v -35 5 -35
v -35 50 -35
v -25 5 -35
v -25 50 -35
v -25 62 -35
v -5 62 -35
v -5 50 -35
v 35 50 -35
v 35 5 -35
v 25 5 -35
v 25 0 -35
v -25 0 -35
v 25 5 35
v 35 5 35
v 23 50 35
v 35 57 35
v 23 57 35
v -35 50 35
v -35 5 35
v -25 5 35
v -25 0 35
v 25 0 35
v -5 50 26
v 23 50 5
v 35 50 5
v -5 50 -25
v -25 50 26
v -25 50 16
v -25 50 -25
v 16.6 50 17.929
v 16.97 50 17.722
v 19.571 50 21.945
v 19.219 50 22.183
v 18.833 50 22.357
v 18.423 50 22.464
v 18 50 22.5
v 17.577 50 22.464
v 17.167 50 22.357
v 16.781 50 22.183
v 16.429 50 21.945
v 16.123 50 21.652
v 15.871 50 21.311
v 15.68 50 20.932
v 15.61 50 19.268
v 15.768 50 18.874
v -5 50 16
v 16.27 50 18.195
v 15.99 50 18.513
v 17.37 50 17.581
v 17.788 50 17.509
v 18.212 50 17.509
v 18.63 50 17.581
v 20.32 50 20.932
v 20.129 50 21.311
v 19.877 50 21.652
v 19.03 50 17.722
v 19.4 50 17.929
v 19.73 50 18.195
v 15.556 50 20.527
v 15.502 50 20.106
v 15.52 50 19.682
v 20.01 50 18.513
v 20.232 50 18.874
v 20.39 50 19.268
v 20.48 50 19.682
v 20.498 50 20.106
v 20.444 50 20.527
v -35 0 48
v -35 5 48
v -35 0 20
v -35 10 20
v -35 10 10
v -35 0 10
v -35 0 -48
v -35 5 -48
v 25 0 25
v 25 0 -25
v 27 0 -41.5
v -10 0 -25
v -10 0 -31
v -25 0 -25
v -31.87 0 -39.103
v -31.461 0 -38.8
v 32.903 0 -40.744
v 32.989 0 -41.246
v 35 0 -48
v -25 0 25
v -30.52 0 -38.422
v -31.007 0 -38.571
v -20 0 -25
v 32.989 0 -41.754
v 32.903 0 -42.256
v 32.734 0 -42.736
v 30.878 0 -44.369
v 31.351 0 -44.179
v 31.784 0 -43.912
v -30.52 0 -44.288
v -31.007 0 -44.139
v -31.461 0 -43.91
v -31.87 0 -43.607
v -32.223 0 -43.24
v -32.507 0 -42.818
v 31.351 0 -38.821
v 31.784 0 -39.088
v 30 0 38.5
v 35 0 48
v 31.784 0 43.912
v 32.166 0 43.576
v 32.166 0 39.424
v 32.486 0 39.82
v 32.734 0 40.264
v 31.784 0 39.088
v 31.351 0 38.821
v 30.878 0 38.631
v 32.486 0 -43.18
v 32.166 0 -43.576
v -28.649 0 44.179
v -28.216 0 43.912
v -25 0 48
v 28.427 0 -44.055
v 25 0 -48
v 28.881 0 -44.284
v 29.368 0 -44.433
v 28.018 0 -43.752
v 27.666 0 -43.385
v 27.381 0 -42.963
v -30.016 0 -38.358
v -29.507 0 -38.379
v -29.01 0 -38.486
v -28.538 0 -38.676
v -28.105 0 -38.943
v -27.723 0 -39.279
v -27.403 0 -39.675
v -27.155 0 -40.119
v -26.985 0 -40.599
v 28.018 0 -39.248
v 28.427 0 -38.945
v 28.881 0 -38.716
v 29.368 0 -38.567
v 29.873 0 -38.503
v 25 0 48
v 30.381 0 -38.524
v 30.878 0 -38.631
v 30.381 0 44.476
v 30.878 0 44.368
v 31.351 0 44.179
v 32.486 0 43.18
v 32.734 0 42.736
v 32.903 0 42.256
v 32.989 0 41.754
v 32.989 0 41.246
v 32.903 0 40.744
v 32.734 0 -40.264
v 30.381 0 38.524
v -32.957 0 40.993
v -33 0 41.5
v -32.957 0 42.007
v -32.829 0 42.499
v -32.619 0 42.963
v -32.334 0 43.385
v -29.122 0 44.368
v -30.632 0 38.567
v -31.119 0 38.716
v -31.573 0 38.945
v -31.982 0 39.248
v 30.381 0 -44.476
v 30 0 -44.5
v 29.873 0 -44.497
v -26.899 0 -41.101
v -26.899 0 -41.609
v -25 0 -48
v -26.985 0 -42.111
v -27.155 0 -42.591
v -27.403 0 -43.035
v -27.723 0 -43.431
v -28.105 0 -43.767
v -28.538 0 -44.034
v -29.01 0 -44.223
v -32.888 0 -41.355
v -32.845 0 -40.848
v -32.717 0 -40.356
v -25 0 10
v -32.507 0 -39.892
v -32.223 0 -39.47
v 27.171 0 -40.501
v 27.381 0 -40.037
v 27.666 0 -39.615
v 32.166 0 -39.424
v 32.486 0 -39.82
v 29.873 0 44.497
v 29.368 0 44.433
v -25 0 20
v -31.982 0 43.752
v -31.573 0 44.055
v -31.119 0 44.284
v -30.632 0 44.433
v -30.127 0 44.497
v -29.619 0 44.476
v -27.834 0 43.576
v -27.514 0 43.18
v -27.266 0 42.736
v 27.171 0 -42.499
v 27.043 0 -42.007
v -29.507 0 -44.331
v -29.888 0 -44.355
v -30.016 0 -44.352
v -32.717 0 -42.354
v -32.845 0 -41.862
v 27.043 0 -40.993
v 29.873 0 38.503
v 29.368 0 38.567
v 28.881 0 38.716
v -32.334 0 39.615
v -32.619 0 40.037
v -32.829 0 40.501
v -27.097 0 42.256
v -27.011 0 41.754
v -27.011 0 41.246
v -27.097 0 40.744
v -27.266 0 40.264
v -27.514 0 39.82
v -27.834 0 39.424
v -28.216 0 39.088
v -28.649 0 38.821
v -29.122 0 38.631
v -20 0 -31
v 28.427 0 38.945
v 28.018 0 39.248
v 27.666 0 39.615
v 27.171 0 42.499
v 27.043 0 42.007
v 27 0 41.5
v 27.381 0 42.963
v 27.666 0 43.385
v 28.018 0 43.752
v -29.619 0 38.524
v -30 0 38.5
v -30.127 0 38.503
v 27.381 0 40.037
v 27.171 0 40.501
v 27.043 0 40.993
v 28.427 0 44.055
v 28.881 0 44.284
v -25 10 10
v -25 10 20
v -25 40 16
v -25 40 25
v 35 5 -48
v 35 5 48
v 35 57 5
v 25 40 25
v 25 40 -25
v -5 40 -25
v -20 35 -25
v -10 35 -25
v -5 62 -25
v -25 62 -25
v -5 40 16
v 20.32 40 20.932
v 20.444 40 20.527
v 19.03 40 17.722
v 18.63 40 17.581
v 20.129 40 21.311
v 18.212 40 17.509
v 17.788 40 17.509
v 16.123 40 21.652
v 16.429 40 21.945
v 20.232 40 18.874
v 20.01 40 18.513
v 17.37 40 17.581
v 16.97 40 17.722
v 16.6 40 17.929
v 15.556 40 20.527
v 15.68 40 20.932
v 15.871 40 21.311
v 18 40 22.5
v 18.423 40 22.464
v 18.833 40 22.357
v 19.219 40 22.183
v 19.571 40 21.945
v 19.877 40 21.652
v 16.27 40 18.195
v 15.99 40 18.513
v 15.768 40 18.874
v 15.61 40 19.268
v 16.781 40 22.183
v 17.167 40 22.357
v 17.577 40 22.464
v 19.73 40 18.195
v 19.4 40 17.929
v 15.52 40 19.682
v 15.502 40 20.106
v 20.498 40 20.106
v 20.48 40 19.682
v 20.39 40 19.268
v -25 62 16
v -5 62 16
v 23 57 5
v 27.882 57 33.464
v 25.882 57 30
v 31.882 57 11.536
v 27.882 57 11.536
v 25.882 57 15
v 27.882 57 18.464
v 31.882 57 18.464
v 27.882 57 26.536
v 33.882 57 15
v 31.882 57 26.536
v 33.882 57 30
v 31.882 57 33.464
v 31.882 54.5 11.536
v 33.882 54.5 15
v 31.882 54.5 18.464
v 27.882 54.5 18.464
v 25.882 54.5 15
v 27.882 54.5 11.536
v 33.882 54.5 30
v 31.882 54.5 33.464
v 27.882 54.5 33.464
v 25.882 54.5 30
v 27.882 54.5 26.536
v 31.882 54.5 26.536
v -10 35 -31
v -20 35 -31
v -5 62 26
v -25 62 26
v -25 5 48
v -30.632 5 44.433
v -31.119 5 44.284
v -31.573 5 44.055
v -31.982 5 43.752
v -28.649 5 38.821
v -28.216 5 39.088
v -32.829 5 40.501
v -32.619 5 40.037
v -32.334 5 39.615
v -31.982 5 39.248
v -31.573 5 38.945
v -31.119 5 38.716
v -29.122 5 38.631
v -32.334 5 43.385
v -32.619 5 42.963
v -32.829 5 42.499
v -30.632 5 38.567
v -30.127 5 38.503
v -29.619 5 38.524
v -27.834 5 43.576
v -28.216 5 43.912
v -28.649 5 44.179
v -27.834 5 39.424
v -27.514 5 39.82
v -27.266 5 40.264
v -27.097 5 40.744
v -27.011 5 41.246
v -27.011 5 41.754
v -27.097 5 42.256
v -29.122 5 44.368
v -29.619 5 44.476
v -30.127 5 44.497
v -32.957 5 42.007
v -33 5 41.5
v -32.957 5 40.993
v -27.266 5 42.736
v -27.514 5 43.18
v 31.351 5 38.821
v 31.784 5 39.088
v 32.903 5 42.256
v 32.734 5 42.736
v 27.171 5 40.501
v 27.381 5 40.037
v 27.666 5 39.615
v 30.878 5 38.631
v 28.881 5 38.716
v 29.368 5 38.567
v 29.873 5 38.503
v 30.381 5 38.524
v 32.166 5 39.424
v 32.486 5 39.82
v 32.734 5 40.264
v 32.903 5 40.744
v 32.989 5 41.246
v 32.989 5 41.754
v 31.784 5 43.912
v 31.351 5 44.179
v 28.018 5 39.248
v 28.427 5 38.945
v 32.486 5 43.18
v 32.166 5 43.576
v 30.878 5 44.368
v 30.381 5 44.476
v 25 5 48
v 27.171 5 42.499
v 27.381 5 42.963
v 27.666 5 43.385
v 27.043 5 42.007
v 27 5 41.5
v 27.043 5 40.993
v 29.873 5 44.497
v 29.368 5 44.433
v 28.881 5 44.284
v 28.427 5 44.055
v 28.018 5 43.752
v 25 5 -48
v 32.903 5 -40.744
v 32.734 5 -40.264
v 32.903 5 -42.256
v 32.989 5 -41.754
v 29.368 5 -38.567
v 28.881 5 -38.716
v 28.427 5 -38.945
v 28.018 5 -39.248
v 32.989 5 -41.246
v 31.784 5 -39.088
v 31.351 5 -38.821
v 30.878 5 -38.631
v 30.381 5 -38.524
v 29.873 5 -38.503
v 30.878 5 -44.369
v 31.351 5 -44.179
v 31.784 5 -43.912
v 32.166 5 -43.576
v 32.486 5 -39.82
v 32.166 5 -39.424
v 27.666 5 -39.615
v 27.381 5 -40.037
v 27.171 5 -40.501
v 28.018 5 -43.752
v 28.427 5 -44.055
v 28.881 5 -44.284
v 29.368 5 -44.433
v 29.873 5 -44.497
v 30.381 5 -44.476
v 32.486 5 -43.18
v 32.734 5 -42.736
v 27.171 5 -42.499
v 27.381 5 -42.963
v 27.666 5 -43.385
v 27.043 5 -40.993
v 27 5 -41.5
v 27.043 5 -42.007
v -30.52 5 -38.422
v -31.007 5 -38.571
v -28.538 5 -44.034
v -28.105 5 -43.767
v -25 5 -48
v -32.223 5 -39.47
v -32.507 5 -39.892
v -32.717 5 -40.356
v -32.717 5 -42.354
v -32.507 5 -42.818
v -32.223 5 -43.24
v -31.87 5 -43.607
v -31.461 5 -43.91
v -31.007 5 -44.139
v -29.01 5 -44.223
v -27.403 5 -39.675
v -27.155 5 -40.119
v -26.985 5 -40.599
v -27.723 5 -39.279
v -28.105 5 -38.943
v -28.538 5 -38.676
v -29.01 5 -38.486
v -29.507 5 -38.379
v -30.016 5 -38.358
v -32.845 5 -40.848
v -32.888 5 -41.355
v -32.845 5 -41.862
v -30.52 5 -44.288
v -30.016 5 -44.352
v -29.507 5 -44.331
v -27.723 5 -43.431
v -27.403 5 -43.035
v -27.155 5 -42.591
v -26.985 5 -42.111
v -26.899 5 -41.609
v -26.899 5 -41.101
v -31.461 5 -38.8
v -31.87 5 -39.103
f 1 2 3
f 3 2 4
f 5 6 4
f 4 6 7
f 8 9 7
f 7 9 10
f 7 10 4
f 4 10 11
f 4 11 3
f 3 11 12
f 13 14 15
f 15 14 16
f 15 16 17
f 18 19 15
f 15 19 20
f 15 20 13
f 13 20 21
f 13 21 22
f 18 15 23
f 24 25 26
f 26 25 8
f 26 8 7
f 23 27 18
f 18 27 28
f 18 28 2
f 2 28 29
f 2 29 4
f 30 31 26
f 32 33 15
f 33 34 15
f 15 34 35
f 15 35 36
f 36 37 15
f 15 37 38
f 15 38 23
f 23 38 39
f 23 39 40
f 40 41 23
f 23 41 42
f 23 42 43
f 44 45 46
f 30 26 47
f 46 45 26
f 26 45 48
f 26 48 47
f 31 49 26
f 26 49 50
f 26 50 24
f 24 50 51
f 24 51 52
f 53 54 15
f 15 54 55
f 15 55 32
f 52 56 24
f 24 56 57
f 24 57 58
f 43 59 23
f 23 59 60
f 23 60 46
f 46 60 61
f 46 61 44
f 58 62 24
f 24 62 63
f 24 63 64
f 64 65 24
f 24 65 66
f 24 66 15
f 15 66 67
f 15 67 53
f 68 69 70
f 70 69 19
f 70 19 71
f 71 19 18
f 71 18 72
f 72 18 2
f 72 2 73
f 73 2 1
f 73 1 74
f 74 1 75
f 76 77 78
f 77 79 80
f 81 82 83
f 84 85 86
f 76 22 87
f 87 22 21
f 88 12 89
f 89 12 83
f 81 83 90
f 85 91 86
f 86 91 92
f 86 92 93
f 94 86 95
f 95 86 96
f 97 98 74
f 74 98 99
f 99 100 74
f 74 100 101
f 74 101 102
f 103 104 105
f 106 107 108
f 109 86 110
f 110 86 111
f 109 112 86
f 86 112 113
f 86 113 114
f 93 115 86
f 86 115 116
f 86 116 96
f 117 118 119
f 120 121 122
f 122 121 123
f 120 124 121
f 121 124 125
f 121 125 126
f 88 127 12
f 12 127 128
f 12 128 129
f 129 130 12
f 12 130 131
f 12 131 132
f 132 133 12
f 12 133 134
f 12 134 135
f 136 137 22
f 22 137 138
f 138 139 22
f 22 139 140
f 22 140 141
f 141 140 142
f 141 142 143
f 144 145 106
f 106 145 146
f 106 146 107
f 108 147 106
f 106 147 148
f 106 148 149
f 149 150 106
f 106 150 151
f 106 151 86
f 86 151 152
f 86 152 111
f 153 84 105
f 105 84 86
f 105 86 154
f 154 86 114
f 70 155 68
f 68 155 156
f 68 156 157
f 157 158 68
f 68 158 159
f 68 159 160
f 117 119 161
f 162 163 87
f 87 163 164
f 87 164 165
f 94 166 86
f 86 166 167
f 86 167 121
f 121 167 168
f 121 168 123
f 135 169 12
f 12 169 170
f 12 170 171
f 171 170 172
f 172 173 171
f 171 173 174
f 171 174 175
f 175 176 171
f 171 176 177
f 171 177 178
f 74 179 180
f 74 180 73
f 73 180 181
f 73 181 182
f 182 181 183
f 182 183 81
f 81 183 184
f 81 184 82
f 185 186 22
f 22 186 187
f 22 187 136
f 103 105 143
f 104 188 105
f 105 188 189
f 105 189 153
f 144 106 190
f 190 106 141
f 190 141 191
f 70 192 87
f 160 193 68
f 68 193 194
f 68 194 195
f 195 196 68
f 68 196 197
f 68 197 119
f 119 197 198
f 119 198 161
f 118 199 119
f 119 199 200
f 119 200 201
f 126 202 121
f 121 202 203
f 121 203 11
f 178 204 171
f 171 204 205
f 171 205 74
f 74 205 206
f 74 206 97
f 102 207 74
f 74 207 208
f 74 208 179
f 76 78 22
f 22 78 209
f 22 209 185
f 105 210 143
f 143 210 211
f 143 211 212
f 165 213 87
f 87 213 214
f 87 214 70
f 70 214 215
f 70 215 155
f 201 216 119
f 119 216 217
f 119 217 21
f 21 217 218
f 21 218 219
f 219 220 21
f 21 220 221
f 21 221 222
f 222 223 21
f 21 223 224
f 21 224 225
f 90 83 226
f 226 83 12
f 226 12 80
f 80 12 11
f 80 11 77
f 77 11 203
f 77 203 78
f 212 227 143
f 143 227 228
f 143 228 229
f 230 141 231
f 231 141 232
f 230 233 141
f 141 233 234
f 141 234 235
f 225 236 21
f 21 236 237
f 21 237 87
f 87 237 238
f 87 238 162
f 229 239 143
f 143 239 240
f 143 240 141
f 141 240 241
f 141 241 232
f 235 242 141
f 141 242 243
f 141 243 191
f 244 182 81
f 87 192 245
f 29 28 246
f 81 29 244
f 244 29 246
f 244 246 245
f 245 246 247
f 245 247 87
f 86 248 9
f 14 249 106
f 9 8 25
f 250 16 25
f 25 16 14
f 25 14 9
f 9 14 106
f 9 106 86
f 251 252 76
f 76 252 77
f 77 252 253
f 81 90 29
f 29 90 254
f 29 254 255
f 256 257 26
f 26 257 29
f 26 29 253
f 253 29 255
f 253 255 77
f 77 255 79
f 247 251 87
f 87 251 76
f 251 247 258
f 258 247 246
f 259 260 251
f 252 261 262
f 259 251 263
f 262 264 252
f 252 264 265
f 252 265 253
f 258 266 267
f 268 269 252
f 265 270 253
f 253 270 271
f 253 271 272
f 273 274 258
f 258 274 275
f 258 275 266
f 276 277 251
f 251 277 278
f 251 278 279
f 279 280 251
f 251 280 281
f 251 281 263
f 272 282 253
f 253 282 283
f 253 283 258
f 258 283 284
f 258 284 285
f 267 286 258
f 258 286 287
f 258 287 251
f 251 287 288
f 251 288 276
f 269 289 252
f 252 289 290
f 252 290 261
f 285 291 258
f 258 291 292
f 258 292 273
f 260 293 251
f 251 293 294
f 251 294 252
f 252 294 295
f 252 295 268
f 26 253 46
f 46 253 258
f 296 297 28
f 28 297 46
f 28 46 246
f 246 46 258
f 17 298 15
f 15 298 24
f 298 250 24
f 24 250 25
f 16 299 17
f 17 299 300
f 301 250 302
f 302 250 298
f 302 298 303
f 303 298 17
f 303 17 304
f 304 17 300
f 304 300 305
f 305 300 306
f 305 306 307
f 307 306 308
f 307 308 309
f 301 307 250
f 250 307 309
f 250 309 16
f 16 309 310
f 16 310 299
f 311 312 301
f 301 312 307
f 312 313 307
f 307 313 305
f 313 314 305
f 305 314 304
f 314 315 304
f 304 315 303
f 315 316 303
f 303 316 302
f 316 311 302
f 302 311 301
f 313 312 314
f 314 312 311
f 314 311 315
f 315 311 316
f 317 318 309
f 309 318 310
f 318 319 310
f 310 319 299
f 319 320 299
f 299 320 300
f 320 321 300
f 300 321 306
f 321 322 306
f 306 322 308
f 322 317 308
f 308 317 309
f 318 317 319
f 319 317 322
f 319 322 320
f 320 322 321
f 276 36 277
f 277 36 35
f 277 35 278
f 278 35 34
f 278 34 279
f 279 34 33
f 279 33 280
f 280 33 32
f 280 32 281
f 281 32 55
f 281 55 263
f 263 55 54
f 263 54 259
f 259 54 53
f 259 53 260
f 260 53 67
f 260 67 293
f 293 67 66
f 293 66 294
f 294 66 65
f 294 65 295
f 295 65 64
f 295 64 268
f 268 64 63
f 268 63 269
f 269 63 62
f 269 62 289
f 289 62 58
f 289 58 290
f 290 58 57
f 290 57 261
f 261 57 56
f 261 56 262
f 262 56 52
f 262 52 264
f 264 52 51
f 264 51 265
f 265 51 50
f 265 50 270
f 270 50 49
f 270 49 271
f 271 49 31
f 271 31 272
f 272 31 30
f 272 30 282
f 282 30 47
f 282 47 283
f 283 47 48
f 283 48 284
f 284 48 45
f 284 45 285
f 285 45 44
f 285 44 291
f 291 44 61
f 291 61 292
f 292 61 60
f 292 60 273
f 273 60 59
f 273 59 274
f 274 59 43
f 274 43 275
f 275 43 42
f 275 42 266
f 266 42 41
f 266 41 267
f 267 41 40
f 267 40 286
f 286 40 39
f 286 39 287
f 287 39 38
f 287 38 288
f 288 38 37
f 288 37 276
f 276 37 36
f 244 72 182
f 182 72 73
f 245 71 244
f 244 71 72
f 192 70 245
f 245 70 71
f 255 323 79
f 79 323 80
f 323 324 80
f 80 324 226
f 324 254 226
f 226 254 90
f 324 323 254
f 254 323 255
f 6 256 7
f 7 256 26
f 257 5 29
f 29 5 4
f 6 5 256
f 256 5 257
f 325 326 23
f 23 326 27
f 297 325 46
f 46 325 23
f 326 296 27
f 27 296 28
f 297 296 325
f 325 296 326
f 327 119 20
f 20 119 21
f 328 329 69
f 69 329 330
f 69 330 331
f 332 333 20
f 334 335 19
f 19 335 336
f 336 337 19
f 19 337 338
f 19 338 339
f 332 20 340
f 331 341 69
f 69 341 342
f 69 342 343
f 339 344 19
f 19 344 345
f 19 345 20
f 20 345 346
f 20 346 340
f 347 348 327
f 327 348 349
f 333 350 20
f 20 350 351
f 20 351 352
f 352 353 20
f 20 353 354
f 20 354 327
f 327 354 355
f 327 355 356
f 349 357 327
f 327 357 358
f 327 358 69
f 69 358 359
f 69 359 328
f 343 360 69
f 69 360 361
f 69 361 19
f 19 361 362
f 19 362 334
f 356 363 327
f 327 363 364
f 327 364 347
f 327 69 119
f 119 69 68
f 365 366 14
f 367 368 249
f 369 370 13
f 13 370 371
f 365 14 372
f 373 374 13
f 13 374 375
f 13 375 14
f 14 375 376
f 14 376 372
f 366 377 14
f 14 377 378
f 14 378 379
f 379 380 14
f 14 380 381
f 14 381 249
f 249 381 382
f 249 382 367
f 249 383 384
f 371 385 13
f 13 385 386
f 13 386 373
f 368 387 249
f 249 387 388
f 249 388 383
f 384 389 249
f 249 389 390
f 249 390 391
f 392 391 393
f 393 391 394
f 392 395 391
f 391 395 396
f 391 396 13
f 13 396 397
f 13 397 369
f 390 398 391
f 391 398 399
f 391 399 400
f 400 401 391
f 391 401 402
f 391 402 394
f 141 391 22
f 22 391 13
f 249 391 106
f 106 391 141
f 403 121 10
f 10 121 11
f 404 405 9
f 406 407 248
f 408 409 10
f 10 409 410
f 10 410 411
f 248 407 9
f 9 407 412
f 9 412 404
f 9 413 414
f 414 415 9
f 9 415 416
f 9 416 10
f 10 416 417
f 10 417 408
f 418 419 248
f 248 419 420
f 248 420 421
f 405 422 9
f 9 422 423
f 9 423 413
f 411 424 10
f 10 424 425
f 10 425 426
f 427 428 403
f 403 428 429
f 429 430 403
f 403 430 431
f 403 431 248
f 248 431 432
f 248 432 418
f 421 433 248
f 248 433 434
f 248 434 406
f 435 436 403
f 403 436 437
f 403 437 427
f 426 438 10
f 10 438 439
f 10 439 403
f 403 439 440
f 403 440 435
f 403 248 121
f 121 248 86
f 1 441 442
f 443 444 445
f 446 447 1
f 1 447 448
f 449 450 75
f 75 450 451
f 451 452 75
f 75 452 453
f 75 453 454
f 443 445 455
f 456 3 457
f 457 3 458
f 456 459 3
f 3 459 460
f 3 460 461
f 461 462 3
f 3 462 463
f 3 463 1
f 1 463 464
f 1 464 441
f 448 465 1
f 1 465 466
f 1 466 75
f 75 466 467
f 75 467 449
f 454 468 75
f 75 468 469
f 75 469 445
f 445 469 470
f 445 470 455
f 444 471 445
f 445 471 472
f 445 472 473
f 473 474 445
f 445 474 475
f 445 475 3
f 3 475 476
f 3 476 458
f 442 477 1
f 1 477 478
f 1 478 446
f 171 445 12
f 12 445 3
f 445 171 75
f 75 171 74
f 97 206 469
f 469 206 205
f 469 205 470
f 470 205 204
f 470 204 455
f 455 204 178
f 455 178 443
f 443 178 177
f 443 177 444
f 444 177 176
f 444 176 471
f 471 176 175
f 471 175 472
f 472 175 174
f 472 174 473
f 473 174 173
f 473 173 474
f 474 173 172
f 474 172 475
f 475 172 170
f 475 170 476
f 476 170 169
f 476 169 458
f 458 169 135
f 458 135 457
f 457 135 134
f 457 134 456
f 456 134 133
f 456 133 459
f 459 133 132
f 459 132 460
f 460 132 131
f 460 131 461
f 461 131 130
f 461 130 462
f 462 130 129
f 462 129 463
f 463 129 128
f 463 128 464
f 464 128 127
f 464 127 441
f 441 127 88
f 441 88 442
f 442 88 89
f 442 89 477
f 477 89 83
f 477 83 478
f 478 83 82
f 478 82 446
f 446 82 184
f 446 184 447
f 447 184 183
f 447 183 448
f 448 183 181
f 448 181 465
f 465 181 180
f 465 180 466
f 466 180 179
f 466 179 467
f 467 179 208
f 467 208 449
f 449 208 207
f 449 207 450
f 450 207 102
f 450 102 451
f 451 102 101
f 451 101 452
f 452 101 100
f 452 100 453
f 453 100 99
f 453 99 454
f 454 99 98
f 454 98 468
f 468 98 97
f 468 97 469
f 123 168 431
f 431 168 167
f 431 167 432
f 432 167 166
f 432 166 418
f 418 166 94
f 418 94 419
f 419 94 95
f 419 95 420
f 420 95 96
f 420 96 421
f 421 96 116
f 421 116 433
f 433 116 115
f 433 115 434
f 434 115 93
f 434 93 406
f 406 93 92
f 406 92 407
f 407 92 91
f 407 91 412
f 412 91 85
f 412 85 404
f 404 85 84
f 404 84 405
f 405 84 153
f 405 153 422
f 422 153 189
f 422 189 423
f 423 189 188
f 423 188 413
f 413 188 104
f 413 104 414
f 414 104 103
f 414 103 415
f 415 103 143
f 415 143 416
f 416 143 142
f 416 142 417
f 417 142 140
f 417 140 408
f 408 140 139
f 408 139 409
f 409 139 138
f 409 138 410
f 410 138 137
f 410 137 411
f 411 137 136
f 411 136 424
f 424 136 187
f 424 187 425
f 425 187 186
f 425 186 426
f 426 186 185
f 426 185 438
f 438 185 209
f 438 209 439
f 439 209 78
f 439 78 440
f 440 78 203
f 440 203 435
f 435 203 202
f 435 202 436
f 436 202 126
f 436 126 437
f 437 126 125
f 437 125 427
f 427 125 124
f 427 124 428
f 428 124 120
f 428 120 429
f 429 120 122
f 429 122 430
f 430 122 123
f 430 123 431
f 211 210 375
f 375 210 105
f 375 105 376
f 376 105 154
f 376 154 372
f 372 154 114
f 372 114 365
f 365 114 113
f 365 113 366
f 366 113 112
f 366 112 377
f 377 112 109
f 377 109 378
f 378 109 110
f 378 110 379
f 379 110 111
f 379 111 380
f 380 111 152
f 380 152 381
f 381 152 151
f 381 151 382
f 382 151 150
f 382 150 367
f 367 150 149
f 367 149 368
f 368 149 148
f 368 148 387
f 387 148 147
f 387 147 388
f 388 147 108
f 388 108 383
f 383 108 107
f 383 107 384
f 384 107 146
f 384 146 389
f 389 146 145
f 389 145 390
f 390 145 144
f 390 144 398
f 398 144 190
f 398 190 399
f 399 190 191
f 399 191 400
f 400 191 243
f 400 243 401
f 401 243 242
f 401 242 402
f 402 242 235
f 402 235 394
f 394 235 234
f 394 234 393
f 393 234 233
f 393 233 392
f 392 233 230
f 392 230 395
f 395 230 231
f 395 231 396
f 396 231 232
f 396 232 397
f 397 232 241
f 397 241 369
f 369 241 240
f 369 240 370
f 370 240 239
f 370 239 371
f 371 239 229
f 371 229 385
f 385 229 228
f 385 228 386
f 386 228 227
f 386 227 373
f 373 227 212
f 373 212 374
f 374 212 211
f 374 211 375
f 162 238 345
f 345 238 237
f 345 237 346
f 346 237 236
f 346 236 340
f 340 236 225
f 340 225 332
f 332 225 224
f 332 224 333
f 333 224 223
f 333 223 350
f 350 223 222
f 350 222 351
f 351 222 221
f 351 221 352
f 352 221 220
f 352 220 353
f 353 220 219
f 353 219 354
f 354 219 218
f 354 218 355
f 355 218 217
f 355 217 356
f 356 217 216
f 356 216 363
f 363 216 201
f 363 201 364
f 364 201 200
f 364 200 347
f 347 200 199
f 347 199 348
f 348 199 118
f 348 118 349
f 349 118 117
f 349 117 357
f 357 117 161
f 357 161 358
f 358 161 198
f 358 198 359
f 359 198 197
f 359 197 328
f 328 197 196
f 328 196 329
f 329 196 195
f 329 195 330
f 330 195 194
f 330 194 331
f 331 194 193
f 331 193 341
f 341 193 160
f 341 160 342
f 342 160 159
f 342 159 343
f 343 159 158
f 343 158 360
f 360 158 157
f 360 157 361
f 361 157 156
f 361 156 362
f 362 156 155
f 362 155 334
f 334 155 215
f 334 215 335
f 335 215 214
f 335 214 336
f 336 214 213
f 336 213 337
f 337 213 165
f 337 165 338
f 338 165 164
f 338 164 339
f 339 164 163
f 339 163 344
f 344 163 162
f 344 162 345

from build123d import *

# Parameters (mm, degrees)
SKETCH1_W               = 70
SKETCH1_H               = 70
BOSS_EXTRUDE1_DEPTH     = 50
CUT_EXTRUDE1_DEPTH      = 40
SKETCH3_W               = 20
SKETCH3_H               = 41
CUT_EXTRUDE2_DEPTH      = 40
SKETCH4_W               = 12
SKETCH4_H               = 30
BOSS_EXTRUDE2_DEPTH     = 7
CUT_EXTRUDE3_DEPTH      = 2.5
SKETCH7_R               = 2.5
CUT_EXTRUDE4_DEPTH      = 52.5
CUT_EXTRUDE5_DEPTH      = 97.81941954
CUT_EXTRUDE5_DEPTH_BACK = 52.5
SKETCH9_W               = 10
SKETCH9_H               = 10
SKETCH10_W              = 10
SKETCH10_H              = 6
CUT_EXTRUDE6_DEPTH      = 35
SKETCH11_W              = 20
SKETCH11_H              = 10
BOSS_EXTRUDE3_DEPTH     = 12
SKETCH13_W              = 10
SKETCH13_H              = 5
BOSS_EXTRUDE4_DEPTH     = 13
SKETCH14_W              = 10
SKETCH14_H              = 5
BOSS_EXTRUDE5_DEPTH     = 13
SKETCH15_R              = 3
CUT_EXTRUDE7_DEPTH      = 33


with BuildPart() as part:
    # Sketch1 → Boss-Extrude1 (new body)
    with BuildSketch(Plane(origin=(0, 0, 0), x_dir=(1, 0, 0), z_dir=(0, 1, 0))):
        Rectangle(SKETCH1_W, SKETCH1_H)
    extrude(amount=BOSS_EXTRUDE1_DEPTH)

    # Sketch2 → Cut-Extrude1 (cut)
    with BuildSketch(Plane.XZ):
        Polygon((0, 25), (-25, 25), (-25, -25), (25, -25), (25, 25), align=None)
    extrude(amount=-CUT_EXTRUDE1_DEPTH, mode=Mode.SUBTRACT)

    # Sketch3 → Cut-Extrude2 (cut)
    with BuildSketch(Plane(origin=(0, 50, 0), x_dir=(1, 0, 0), z_dir=(0, 1, 0))):
        with Locations((-15, 4.5)):
            Rectangle(SKETCH3_W, SKETCH3_H)
    extrude(amount=-CUT_EXTRUDE2_DEPTH, mode=Mode.SUBTRACT)

    # Sketch4 → Boss-Extrude2 (add)
    with BuildSketch(Plane(origin=(0, 50, 0), x_dir=(1, 0, 0), z_dir=(0, 1, 0))):
        with Locations((29, -20)):
            Rectangle(SKETCH4_W, SKETCH4_H)
    extrude(amount=BOSS_EXTRUDE2_DEPTH)

    # Sketch5 → Cut-Extrude3 (cut)
    with BuildSketch(Plane(origin=(0, 57, 0), x_dir=(1, 0, 0), z_dir=(0, 1, 0))):
        Polygon((33.881686691, -15), (31.881686691, -18.464101615), (27.881686691, -18.464101615), (25.881686691, -15), (27.881686691, -11.535898385), (31.881686691, -11.535898385), align=None)
        Polygon((27.881686691, -33.464101615), (25.881686691, -30), (27.881686691, -26.535898385), (31.881686691, -26.535898385), (33.881686691, -30), (31.881686691, -33.464101615), align=None)
    extrude(amount=-CUT_EXTRUDE3_DEPTH, mode=Mode.SUBTRACT)

    # Sketch7 → Cut-Extrude4 (cut)
    with BuildSketch(Plane(origin=(0, 50, 0), x_dir=(1, 0, 0), z_dir=(0, 1, 0))):
        with Locations(Location((18, -20, 0), (0, 0, 270))):
            Circle(SKETCH7_R)
    extrude(amount=-CUT_EXTRUDE4_DEPTH, mode=Mode.SUBTRACT)

    # Sketch9 → Cut-Extrude5 (cut, two sides: drawn at the far end of the back side and taken through both)
    with BuildSketch(Plane.ZY.offset(35).offset(-CUT_EXTRUDE5_DEPTH_BACK)):
        with Locations((15, 5)):
            Rectangle(SKETCH9_W, SKETCH9_H)
    extrude(amount=CUT_EXTRUDE5_DEPTH + CUT_EXTRUDE5_DEPTH_BACK, mode=Mode.SUBTRACT)

    # Sketch10 → Cut-Extrude6 (cut)
    with BuildSketch(Plane.XZ):
        with Locations((-15, -28)):
            Rectangle(SKETCH10_W, SKETCH10_H)
    extrude(amount=-CUT_EXTRUDE6_DEPTH, mode=Mode.SUBTRACT)

    # Sketch11 → Boss-Extrude3 (add)
    with BuildSketch(Plane(origin=(0, 50, 0), x_dir=(1, 0, 0), z_dir=(0, 1, 0))):
        with Locations((-15, 30)):
            Rectangle(SKETCH11_W, SKETCH11_H)
        with Locations((-15, -21)):
            Rectangle(SKETCH11_W, SKETCH11_H)
    extrude(amount=BOSS_EXTRUDE3_DEPTH)

    # Sketch13 → Boss-Extrude4 (add)
    with BuildSketch(Plane.XY.offset(35)):
        with Locations((-30, 2.5)):
            Rectangle(SKETCH13_W, SKETCH13_H)
        with Locations((30, 2.5)):
            Rectangle(SKETCH13_W, SKETCH13_H)
    extrude(amount=BOSS_EXTRUDE4_DEPTH)

    # Sketch14 → Boss-Extrude5 (add)
    with BuildSketch(Plane(origin=(0, 0, -35), x_dir=(-1, 0, 0), z_dir=(0, 0, -1))):
        with Locations((-30, 2.5)):
            Rectangle(SKETCH14_W, SKETCH14_H)
        with Locations((30, 2.5)):
            Rectangle(SKETCH14_W, SKETCH14_H)
    extrude(amount=BOSS_EXTRUDE5_DEPTH)

    # Sketch15 → Cut-Extrude7 (cut)
    with BuildSketch(Plane(origin=(0, 5, 0), x_dir=(1, 0, 0), z_dir=(0, 1, 0))):
        with Locations(Location((-29.888443239, 41.354976211, 0), (0, 0, 180))):
            Circle(SKETCH15_R)
        with Locations(Location((-30, -41.5, 0), (0, 0, 180))):
            Circle(SKETCH15_R)
        with Locations(Location((30, -41.5, 0), (0, 0, 180))):
            Circle(SKETCH15_R)
        with Locations(Location((30, 41.5, 0), (0, 0, 180))):
            Circle(SKETCH15_R)
    extrude(amount=-CUT_EXTRUDE7_DEPTH, mode=Mode.SUBTRACT)


solid = part.part
